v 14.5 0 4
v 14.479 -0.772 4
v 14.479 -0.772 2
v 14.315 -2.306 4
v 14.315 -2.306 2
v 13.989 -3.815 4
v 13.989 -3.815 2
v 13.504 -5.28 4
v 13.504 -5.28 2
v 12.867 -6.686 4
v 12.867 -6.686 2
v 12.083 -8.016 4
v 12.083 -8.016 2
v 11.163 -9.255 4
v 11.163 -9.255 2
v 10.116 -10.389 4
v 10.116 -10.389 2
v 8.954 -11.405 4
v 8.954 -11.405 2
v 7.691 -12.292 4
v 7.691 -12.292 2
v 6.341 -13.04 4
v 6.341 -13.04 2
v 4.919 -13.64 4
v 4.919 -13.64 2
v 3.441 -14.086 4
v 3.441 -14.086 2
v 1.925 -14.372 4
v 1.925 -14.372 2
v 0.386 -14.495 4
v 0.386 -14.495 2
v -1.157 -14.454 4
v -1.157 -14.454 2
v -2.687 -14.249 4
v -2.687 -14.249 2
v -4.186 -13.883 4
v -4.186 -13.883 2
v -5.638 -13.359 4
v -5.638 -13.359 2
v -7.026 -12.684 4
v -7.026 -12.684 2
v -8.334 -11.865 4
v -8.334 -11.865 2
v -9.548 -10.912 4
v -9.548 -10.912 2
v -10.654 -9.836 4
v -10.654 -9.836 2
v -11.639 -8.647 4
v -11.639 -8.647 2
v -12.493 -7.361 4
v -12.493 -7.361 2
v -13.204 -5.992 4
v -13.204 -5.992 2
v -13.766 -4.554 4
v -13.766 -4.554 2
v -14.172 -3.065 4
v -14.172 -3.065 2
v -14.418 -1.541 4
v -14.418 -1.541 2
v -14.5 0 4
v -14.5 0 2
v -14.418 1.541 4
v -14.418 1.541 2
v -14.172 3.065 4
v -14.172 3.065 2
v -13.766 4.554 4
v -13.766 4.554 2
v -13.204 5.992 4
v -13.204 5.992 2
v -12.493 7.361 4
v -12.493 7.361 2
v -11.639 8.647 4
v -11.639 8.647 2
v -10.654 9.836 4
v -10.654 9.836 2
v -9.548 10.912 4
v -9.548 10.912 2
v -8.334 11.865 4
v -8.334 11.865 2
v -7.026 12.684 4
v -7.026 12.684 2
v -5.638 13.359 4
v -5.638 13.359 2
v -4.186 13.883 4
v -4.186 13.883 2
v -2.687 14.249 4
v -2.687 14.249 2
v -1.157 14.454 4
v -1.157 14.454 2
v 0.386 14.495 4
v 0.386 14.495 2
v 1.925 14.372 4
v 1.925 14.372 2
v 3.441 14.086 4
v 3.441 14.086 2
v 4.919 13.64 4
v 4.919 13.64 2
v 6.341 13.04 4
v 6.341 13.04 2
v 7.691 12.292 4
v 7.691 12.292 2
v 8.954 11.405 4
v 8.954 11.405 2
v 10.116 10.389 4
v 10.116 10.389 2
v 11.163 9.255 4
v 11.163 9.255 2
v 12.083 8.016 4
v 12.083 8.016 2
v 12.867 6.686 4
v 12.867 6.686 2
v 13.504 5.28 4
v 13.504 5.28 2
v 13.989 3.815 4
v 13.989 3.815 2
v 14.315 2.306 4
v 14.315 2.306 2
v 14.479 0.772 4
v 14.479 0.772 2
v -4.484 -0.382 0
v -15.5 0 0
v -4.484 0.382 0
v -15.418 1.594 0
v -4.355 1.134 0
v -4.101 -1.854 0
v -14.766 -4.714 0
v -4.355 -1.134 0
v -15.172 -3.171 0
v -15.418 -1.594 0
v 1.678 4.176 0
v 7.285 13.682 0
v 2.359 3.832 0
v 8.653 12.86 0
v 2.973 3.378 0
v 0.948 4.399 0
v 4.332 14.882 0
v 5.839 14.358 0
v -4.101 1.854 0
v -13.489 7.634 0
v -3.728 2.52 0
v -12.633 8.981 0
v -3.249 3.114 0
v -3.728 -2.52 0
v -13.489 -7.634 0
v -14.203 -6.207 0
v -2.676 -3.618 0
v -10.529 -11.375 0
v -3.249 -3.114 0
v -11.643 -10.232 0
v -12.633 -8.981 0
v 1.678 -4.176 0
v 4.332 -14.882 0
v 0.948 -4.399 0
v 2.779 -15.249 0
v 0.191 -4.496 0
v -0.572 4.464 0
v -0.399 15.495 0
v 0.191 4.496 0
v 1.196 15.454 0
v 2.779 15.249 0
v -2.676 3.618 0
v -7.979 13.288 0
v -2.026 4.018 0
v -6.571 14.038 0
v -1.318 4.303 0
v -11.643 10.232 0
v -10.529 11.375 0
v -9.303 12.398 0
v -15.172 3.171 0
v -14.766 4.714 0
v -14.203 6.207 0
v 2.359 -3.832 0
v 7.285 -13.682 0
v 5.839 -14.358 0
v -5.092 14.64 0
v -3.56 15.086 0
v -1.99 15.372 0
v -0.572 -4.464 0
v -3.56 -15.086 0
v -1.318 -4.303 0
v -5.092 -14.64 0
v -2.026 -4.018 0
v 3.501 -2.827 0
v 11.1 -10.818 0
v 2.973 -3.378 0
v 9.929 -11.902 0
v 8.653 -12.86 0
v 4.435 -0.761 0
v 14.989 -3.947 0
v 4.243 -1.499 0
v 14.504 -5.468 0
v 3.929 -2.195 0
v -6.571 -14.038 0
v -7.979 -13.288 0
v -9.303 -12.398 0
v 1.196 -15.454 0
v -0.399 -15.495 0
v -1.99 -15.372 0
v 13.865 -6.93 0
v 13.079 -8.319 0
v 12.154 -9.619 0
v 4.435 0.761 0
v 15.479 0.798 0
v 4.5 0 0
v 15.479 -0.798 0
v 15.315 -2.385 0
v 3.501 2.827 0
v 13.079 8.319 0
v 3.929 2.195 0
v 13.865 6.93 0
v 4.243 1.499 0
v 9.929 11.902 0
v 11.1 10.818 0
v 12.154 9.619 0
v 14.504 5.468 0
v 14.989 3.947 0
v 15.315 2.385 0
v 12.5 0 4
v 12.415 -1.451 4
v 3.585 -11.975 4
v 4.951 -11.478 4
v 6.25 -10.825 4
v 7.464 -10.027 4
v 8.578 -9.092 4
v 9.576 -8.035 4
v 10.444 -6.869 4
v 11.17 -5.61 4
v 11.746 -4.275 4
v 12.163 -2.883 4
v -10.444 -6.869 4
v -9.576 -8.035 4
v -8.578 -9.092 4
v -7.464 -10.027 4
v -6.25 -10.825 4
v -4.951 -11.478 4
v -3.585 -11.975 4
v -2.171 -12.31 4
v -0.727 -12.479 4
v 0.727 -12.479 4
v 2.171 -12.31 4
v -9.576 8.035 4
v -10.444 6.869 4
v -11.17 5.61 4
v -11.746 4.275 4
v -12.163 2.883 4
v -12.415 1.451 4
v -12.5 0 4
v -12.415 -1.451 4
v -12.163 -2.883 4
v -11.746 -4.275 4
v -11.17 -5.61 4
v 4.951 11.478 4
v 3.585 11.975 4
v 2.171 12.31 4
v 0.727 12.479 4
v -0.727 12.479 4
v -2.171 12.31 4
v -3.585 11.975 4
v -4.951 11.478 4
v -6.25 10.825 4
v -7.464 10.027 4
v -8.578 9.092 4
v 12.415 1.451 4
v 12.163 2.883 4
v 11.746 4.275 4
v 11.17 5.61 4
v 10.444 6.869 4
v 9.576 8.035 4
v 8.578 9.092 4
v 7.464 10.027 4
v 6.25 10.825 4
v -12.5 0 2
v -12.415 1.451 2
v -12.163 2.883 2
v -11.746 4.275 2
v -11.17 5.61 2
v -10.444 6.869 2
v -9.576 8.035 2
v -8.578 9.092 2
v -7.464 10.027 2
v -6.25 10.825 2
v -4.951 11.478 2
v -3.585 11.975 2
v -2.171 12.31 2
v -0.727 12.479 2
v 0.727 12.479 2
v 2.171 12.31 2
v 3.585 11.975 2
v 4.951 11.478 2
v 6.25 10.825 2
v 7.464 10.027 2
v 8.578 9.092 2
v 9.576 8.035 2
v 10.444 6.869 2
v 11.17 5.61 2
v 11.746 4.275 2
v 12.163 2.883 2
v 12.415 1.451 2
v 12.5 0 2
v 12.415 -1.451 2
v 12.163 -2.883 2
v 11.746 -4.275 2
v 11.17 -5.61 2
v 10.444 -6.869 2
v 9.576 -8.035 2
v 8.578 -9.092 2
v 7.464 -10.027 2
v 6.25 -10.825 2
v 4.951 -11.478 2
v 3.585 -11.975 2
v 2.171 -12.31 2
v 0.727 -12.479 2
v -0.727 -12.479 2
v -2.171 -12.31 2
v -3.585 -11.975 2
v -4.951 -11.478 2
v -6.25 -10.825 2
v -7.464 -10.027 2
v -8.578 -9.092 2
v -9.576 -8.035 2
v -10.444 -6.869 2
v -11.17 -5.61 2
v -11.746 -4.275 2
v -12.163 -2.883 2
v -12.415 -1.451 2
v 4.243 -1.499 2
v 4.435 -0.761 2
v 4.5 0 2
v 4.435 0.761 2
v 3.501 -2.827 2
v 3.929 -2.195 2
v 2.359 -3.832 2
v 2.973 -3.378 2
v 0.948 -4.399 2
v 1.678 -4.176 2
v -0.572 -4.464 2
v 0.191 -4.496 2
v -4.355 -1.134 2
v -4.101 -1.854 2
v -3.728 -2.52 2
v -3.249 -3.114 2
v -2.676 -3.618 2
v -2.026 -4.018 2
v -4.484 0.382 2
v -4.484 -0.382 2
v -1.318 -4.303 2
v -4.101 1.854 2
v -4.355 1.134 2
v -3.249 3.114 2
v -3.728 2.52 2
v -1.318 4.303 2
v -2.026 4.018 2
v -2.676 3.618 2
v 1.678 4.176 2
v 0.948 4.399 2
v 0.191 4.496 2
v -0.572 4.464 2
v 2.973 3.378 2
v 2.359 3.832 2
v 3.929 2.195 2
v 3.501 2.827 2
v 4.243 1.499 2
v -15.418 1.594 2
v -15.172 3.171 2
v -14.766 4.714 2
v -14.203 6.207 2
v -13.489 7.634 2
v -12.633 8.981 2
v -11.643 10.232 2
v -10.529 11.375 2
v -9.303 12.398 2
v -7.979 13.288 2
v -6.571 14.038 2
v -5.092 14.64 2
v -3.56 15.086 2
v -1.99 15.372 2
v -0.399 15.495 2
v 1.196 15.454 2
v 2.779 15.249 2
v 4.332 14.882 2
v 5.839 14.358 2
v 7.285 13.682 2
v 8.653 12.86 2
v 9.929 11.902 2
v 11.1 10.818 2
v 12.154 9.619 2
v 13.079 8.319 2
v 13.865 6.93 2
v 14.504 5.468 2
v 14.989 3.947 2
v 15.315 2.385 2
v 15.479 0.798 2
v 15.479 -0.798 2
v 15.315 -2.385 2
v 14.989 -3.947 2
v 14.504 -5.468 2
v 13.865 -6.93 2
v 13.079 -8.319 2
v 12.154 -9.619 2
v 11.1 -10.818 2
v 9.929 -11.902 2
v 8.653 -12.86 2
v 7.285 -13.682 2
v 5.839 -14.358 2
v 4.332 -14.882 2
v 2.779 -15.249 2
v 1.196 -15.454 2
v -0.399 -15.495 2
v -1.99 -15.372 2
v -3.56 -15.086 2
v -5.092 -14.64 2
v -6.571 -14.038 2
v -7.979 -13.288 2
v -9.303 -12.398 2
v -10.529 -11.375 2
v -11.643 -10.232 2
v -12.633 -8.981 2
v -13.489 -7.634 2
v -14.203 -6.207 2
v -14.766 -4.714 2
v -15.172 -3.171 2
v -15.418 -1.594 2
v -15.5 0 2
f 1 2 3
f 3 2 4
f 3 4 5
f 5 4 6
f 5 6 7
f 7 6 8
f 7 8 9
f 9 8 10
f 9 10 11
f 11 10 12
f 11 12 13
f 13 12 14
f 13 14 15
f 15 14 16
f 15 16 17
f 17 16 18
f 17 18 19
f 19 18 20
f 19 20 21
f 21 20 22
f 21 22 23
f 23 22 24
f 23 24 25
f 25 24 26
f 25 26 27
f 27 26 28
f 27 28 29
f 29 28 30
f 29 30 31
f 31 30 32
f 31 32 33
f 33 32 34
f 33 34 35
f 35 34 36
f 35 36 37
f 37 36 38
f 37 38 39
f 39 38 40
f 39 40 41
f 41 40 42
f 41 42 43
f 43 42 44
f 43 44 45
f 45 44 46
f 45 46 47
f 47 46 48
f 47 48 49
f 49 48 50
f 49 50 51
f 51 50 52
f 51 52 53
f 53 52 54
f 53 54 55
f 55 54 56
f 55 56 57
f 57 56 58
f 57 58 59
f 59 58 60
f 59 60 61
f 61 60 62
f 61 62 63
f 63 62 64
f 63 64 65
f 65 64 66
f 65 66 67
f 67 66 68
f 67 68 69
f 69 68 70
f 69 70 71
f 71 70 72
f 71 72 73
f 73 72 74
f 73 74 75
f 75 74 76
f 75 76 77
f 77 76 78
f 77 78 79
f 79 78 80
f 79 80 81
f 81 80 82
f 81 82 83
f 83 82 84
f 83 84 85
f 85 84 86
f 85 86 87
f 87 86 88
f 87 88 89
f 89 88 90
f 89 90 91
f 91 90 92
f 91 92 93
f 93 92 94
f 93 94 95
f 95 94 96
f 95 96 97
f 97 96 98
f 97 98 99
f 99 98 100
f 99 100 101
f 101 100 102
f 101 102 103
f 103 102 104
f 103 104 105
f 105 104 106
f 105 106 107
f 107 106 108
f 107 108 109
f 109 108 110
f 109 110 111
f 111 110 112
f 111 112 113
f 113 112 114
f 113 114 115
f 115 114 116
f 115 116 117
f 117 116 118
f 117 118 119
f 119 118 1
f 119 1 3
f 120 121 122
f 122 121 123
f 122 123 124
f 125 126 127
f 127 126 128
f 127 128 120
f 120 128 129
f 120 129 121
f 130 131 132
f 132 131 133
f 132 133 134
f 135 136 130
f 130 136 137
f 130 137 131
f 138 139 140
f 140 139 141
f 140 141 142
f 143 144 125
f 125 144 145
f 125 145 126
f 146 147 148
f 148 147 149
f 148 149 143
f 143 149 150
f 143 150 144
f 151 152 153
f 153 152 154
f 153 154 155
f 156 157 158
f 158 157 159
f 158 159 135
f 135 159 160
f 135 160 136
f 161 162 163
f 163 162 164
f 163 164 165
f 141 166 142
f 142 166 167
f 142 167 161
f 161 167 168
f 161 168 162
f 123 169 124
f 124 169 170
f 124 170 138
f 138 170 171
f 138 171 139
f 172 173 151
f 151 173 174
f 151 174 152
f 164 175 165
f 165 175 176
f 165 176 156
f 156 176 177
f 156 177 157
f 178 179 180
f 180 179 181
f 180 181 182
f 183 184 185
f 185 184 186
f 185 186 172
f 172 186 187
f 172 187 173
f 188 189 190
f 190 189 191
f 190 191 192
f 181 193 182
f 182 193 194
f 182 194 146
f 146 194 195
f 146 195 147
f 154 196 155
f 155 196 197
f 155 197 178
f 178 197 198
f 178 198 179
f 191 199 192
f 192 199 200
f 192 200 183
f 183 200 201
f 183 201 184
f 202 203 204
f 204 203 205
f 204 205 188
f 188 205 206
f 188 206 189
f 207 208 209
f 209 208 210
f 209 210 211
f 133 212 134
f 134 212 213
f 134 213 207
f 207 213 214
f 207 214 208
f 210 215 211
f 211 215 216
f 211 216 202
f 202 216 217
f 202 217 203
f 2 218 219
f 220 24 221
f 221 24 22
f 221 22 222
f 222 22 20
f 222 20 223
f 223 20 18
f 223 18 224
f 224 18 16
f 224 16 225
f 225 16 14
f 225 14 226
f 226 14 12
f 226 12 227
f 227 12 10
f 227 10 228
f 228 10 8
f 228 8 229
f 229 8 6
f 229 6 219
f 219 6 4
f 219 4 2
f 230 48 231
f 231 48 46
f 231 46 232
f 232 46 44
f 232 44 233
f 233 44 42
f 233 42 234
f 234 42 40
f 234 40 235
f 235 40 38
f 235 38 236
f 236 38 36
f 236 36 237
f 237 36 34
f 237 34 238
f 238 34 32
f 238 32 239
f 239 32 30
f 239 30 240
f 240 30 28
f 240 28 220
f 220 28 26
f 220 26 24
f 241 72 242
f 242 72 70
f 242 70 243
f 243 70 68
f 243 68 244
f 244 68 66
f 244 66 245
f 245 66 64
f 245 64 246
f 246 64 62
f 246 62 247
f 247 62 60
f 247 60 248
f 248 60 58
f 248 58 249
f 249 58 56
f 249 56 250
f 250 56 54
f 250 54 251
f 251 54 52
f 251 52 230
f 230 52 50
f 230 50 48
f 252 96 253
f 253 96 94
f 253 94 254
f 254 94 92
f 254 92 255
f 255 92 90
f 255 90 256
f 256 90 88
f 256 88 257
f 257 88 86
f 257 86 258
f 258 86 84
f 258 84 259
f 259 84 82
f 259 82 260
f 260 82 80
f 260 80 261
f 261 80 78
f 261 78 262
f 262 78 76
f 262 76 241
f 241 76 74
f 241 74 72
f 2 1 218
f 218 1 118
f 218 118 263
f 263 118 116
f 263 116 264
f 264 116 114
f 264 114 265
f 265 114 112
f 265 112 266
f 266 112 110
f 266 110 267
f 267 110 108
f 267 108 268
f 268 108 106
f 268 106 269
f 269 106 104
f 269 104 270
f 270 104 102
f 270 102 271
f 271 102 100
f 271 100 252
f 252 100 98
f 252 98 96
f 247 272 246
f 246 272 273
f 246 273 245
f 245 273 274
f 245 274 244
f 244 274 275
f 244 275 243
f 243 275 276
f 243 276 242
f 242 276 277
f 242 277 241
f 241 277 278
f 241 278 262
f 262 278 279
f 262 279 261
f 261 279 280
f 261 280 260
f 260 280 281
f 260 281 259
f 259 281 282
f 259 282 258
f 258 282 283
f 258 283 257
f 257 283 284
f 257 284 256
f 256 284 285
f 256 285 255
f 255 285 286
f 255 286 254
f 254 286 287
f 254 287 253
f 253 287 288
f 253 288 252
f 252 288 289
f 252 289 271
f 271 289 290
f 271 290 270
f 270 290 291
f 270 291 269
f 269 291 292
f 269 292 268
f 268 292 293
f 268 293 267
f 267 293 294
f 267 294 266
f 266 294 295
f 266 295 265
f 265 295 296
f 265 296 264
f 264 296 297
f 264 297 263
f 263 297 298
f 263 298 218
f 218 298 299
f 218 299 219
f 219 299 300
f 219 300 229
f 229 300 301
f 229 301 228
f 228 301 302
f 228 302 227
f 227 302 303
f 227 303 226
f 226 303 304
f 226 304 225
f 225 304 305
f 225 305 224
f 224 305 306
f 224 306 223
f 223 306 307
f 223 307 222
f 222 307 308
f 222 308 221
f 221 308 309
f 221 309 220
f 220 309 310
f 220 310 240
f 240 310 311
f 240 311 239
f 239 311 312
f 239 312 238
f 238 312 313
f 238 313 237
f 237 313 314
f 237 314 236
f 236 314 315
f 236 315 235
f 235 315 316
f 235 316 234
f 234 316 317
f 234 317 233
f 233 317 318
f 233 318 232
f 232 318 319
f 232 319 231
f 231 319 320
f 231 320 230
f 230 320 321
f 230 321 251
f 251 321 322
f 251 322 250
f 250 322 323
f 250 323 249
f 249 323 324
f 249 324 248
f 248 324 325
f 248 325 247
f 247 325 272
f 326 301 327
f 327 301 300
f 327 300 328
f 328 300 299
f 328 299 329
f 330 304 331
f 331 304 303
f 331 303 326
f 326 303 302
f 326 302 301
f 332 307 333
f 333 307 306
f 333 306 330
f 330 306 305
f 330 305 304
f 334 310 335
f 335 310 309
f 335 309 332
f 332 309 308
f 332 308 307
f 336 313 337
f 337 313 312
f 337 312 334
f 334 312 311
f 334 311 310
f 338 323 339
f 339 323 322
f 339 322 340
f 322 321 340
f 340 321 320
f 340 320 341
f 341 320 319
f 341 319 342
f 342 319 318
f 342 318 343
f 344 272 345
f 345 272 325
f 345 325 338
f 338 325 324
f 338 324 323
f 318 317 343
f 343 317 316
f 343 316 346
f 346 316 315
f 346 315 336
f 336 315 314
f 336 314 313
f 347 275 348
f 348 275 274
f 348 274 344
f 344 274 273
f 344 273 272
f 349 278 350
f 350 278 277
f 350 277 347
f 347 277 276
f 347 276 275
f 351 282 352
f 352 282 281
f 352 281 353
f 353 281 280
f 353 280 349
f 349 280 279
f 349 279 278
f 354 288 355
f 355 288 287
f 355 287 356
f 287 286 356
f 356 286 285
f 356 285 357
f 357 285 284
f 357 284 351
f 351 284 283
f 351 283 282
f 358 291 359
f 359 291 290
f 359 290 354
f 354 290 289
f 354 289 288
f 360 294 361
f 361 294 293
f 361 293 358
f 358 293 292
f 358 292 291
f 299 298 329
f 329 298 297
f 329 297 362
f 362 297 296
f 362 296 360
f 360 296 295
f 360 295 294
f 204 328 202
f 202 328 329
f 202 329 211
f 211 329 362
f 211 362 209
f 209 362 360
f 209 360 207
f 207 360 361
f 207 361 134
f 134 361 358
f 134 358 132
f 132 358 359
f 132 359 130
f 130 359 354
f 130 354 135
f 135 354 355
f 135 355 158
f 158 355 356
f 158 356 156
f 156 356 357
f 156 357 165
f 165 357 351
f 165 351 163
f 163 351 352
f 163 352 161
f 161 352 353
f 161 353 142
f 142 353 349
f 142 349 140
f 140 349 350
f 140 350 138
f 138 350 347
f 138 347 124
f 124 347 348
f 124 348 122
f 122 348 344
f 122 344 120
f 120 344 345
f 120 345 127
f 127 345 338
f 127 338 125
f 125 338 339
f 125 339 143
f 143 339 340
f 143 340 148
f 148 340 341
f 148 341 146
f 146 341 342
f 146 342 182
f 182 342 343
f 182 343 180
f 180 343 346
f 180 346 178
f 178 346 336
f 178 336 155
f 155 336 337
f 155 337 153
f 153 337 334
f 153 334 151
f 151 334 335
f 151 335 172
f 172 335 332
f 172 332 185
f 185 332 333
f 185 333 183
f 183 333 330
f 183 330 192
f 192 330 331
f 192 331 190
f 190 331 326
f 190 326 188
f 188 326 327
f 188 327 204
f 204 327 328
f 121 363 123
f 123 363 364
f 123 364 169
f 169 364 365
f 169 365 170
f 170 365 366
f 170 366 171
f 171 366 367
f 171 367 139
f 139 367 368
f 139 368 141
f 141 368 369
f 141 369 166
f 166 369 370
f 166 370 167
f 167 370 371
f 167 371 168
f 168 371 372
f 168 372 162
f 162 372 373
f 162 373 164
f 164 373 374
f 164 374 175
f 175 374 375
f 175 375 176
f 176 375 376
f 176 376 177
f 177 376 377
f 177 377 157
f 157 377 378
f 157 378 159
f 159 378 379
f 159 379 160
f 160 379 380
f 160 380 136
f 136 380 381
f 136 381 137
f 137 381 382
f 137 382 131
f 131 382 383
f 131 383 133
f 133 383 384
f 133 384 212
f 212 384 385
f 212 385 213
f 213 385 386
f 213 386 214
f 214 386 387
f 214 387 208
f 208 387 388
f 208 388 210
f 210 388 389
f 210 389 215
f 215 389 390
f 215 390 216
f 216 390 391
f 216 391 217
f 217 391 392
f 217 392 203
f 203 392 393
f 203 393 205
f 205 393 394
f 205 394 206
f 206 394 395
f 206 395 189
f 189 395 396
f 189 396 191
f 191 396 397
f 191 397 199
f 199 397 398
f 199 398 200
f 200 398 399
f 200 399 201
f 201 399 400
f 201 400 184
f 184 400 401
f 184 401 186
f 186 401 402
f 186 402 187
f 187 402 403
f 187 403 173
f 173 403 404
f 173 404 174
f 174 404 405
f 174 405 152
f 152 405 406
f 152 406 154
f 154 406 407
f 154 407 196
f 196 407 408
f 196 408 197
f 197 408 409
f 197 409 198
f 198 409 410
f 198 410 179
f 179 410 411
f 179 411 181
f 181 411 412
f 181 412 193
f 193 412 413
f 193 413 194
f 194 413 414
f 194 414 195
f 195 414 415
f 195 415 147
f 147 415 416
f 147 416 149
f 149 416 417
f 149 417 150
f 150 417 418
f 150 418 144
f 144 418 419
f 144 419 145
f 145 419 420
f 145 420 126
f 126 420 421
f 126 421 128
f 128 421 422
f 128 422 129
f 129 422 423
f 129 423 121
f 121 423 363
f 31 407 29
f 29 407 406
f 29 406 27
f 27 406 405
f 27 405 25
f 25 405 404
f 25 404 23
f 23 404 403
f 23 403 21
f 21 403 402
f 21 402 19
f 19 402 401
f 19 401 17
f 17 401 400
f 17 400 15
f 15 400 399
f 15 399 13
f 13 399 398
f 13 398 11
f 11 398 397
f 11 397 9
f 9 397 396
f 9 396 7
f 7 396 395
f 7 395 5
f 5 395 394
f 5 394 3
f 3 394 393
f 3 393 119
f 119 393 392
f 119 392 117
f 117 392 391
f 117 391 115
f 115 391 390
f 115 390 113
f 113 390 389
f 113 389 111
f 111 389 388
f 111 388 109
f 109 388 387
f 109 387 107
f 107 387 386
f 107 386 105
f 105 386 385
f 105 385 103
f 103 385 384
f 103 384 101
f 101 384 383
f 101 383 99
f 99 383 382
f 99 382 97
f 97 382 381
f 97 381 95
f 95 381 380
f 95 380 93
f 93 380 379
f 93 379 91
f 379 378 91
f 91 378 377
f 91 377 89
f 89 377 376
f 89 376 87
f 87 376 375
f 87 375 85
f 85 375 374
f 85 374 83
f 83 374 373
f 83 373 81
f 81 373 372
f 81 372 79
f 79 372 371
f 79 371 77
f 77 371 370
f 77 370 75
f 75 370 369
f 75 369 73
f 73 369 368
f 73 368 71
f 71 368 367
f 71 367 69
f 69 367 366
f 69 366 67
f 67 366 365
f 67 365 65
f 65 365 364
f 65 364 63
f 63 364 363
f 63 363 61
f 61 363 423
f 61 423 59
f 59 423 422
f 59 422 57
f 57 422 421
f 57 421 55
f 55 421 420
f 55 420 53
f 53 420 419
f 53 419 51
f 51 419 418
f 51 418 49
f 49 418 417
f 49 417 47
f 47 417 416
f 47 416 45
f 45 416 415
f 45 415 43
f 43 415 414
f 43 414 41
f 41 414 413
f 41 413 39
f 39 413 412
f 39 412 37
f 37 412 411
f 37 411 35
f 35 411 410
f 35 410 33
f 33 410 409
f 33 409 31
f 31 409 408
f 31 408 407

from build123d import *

# Parameters (mm, degrees)
SKETCH1_R           = 14.5
BOSS_EXTRUDE1_DEPTH = 2
SKETCH2_R           = 14.5
SKETCH2_R_2         = 12.5
BOSS_EXTRUDE2_DEPTH = 2
SKETCH3_R           = 4.5
CUT_EXTRUDE1_DEPTH  = 2
SKETCH4_R           = 15.5
SKETCH4_R_2         = 14.5
BOSS_EXTRUDE3_DEPTH = 2


with BuildPart() as part:
    # Sketch1 → Boss-Extrude1 (new body)
    with BuildSketch(Plane.XY):
        Circle(SKETCH1_R)
    extrude(amount=BOSS_EXTRUDE1_DEPTH)

    # Sketch2 → Boss-Extrude2 (add)
    with BuildSketch(Plane.XY.offset(2)):
        Circle(SKETCH2_R)
        Circle(SKETCH2_R_2, mode=Mode.SUBTRACT)
    extrude(amount=BOSS_EXTRUDE2_DEPTH)

    # Sketch3 → Cut-Extrude1 (cut)
    with BuildSketch(Plane.XY.offset(2)):
        Circle(SKETCH3_R)
    extrude(amount=-CUT_EXTRUDE1_DEPTH, mode=Mode.SUBTRACT)

    # Sketch4 → Boss-Extrude3 (add)
    with BuildSketch(Plane(origin=(0, 0, 0), x_dir=(-1, 0, 0), z_dir=(0, 0, -1))):
        Circle(SKETCH4_R)
        Circle(SKETCH4_R_2, mode=Mode.SUBTRACT)
    extrude(amount=-BOSS_EXTRUDE3_DEPTH)


solid = part.part
